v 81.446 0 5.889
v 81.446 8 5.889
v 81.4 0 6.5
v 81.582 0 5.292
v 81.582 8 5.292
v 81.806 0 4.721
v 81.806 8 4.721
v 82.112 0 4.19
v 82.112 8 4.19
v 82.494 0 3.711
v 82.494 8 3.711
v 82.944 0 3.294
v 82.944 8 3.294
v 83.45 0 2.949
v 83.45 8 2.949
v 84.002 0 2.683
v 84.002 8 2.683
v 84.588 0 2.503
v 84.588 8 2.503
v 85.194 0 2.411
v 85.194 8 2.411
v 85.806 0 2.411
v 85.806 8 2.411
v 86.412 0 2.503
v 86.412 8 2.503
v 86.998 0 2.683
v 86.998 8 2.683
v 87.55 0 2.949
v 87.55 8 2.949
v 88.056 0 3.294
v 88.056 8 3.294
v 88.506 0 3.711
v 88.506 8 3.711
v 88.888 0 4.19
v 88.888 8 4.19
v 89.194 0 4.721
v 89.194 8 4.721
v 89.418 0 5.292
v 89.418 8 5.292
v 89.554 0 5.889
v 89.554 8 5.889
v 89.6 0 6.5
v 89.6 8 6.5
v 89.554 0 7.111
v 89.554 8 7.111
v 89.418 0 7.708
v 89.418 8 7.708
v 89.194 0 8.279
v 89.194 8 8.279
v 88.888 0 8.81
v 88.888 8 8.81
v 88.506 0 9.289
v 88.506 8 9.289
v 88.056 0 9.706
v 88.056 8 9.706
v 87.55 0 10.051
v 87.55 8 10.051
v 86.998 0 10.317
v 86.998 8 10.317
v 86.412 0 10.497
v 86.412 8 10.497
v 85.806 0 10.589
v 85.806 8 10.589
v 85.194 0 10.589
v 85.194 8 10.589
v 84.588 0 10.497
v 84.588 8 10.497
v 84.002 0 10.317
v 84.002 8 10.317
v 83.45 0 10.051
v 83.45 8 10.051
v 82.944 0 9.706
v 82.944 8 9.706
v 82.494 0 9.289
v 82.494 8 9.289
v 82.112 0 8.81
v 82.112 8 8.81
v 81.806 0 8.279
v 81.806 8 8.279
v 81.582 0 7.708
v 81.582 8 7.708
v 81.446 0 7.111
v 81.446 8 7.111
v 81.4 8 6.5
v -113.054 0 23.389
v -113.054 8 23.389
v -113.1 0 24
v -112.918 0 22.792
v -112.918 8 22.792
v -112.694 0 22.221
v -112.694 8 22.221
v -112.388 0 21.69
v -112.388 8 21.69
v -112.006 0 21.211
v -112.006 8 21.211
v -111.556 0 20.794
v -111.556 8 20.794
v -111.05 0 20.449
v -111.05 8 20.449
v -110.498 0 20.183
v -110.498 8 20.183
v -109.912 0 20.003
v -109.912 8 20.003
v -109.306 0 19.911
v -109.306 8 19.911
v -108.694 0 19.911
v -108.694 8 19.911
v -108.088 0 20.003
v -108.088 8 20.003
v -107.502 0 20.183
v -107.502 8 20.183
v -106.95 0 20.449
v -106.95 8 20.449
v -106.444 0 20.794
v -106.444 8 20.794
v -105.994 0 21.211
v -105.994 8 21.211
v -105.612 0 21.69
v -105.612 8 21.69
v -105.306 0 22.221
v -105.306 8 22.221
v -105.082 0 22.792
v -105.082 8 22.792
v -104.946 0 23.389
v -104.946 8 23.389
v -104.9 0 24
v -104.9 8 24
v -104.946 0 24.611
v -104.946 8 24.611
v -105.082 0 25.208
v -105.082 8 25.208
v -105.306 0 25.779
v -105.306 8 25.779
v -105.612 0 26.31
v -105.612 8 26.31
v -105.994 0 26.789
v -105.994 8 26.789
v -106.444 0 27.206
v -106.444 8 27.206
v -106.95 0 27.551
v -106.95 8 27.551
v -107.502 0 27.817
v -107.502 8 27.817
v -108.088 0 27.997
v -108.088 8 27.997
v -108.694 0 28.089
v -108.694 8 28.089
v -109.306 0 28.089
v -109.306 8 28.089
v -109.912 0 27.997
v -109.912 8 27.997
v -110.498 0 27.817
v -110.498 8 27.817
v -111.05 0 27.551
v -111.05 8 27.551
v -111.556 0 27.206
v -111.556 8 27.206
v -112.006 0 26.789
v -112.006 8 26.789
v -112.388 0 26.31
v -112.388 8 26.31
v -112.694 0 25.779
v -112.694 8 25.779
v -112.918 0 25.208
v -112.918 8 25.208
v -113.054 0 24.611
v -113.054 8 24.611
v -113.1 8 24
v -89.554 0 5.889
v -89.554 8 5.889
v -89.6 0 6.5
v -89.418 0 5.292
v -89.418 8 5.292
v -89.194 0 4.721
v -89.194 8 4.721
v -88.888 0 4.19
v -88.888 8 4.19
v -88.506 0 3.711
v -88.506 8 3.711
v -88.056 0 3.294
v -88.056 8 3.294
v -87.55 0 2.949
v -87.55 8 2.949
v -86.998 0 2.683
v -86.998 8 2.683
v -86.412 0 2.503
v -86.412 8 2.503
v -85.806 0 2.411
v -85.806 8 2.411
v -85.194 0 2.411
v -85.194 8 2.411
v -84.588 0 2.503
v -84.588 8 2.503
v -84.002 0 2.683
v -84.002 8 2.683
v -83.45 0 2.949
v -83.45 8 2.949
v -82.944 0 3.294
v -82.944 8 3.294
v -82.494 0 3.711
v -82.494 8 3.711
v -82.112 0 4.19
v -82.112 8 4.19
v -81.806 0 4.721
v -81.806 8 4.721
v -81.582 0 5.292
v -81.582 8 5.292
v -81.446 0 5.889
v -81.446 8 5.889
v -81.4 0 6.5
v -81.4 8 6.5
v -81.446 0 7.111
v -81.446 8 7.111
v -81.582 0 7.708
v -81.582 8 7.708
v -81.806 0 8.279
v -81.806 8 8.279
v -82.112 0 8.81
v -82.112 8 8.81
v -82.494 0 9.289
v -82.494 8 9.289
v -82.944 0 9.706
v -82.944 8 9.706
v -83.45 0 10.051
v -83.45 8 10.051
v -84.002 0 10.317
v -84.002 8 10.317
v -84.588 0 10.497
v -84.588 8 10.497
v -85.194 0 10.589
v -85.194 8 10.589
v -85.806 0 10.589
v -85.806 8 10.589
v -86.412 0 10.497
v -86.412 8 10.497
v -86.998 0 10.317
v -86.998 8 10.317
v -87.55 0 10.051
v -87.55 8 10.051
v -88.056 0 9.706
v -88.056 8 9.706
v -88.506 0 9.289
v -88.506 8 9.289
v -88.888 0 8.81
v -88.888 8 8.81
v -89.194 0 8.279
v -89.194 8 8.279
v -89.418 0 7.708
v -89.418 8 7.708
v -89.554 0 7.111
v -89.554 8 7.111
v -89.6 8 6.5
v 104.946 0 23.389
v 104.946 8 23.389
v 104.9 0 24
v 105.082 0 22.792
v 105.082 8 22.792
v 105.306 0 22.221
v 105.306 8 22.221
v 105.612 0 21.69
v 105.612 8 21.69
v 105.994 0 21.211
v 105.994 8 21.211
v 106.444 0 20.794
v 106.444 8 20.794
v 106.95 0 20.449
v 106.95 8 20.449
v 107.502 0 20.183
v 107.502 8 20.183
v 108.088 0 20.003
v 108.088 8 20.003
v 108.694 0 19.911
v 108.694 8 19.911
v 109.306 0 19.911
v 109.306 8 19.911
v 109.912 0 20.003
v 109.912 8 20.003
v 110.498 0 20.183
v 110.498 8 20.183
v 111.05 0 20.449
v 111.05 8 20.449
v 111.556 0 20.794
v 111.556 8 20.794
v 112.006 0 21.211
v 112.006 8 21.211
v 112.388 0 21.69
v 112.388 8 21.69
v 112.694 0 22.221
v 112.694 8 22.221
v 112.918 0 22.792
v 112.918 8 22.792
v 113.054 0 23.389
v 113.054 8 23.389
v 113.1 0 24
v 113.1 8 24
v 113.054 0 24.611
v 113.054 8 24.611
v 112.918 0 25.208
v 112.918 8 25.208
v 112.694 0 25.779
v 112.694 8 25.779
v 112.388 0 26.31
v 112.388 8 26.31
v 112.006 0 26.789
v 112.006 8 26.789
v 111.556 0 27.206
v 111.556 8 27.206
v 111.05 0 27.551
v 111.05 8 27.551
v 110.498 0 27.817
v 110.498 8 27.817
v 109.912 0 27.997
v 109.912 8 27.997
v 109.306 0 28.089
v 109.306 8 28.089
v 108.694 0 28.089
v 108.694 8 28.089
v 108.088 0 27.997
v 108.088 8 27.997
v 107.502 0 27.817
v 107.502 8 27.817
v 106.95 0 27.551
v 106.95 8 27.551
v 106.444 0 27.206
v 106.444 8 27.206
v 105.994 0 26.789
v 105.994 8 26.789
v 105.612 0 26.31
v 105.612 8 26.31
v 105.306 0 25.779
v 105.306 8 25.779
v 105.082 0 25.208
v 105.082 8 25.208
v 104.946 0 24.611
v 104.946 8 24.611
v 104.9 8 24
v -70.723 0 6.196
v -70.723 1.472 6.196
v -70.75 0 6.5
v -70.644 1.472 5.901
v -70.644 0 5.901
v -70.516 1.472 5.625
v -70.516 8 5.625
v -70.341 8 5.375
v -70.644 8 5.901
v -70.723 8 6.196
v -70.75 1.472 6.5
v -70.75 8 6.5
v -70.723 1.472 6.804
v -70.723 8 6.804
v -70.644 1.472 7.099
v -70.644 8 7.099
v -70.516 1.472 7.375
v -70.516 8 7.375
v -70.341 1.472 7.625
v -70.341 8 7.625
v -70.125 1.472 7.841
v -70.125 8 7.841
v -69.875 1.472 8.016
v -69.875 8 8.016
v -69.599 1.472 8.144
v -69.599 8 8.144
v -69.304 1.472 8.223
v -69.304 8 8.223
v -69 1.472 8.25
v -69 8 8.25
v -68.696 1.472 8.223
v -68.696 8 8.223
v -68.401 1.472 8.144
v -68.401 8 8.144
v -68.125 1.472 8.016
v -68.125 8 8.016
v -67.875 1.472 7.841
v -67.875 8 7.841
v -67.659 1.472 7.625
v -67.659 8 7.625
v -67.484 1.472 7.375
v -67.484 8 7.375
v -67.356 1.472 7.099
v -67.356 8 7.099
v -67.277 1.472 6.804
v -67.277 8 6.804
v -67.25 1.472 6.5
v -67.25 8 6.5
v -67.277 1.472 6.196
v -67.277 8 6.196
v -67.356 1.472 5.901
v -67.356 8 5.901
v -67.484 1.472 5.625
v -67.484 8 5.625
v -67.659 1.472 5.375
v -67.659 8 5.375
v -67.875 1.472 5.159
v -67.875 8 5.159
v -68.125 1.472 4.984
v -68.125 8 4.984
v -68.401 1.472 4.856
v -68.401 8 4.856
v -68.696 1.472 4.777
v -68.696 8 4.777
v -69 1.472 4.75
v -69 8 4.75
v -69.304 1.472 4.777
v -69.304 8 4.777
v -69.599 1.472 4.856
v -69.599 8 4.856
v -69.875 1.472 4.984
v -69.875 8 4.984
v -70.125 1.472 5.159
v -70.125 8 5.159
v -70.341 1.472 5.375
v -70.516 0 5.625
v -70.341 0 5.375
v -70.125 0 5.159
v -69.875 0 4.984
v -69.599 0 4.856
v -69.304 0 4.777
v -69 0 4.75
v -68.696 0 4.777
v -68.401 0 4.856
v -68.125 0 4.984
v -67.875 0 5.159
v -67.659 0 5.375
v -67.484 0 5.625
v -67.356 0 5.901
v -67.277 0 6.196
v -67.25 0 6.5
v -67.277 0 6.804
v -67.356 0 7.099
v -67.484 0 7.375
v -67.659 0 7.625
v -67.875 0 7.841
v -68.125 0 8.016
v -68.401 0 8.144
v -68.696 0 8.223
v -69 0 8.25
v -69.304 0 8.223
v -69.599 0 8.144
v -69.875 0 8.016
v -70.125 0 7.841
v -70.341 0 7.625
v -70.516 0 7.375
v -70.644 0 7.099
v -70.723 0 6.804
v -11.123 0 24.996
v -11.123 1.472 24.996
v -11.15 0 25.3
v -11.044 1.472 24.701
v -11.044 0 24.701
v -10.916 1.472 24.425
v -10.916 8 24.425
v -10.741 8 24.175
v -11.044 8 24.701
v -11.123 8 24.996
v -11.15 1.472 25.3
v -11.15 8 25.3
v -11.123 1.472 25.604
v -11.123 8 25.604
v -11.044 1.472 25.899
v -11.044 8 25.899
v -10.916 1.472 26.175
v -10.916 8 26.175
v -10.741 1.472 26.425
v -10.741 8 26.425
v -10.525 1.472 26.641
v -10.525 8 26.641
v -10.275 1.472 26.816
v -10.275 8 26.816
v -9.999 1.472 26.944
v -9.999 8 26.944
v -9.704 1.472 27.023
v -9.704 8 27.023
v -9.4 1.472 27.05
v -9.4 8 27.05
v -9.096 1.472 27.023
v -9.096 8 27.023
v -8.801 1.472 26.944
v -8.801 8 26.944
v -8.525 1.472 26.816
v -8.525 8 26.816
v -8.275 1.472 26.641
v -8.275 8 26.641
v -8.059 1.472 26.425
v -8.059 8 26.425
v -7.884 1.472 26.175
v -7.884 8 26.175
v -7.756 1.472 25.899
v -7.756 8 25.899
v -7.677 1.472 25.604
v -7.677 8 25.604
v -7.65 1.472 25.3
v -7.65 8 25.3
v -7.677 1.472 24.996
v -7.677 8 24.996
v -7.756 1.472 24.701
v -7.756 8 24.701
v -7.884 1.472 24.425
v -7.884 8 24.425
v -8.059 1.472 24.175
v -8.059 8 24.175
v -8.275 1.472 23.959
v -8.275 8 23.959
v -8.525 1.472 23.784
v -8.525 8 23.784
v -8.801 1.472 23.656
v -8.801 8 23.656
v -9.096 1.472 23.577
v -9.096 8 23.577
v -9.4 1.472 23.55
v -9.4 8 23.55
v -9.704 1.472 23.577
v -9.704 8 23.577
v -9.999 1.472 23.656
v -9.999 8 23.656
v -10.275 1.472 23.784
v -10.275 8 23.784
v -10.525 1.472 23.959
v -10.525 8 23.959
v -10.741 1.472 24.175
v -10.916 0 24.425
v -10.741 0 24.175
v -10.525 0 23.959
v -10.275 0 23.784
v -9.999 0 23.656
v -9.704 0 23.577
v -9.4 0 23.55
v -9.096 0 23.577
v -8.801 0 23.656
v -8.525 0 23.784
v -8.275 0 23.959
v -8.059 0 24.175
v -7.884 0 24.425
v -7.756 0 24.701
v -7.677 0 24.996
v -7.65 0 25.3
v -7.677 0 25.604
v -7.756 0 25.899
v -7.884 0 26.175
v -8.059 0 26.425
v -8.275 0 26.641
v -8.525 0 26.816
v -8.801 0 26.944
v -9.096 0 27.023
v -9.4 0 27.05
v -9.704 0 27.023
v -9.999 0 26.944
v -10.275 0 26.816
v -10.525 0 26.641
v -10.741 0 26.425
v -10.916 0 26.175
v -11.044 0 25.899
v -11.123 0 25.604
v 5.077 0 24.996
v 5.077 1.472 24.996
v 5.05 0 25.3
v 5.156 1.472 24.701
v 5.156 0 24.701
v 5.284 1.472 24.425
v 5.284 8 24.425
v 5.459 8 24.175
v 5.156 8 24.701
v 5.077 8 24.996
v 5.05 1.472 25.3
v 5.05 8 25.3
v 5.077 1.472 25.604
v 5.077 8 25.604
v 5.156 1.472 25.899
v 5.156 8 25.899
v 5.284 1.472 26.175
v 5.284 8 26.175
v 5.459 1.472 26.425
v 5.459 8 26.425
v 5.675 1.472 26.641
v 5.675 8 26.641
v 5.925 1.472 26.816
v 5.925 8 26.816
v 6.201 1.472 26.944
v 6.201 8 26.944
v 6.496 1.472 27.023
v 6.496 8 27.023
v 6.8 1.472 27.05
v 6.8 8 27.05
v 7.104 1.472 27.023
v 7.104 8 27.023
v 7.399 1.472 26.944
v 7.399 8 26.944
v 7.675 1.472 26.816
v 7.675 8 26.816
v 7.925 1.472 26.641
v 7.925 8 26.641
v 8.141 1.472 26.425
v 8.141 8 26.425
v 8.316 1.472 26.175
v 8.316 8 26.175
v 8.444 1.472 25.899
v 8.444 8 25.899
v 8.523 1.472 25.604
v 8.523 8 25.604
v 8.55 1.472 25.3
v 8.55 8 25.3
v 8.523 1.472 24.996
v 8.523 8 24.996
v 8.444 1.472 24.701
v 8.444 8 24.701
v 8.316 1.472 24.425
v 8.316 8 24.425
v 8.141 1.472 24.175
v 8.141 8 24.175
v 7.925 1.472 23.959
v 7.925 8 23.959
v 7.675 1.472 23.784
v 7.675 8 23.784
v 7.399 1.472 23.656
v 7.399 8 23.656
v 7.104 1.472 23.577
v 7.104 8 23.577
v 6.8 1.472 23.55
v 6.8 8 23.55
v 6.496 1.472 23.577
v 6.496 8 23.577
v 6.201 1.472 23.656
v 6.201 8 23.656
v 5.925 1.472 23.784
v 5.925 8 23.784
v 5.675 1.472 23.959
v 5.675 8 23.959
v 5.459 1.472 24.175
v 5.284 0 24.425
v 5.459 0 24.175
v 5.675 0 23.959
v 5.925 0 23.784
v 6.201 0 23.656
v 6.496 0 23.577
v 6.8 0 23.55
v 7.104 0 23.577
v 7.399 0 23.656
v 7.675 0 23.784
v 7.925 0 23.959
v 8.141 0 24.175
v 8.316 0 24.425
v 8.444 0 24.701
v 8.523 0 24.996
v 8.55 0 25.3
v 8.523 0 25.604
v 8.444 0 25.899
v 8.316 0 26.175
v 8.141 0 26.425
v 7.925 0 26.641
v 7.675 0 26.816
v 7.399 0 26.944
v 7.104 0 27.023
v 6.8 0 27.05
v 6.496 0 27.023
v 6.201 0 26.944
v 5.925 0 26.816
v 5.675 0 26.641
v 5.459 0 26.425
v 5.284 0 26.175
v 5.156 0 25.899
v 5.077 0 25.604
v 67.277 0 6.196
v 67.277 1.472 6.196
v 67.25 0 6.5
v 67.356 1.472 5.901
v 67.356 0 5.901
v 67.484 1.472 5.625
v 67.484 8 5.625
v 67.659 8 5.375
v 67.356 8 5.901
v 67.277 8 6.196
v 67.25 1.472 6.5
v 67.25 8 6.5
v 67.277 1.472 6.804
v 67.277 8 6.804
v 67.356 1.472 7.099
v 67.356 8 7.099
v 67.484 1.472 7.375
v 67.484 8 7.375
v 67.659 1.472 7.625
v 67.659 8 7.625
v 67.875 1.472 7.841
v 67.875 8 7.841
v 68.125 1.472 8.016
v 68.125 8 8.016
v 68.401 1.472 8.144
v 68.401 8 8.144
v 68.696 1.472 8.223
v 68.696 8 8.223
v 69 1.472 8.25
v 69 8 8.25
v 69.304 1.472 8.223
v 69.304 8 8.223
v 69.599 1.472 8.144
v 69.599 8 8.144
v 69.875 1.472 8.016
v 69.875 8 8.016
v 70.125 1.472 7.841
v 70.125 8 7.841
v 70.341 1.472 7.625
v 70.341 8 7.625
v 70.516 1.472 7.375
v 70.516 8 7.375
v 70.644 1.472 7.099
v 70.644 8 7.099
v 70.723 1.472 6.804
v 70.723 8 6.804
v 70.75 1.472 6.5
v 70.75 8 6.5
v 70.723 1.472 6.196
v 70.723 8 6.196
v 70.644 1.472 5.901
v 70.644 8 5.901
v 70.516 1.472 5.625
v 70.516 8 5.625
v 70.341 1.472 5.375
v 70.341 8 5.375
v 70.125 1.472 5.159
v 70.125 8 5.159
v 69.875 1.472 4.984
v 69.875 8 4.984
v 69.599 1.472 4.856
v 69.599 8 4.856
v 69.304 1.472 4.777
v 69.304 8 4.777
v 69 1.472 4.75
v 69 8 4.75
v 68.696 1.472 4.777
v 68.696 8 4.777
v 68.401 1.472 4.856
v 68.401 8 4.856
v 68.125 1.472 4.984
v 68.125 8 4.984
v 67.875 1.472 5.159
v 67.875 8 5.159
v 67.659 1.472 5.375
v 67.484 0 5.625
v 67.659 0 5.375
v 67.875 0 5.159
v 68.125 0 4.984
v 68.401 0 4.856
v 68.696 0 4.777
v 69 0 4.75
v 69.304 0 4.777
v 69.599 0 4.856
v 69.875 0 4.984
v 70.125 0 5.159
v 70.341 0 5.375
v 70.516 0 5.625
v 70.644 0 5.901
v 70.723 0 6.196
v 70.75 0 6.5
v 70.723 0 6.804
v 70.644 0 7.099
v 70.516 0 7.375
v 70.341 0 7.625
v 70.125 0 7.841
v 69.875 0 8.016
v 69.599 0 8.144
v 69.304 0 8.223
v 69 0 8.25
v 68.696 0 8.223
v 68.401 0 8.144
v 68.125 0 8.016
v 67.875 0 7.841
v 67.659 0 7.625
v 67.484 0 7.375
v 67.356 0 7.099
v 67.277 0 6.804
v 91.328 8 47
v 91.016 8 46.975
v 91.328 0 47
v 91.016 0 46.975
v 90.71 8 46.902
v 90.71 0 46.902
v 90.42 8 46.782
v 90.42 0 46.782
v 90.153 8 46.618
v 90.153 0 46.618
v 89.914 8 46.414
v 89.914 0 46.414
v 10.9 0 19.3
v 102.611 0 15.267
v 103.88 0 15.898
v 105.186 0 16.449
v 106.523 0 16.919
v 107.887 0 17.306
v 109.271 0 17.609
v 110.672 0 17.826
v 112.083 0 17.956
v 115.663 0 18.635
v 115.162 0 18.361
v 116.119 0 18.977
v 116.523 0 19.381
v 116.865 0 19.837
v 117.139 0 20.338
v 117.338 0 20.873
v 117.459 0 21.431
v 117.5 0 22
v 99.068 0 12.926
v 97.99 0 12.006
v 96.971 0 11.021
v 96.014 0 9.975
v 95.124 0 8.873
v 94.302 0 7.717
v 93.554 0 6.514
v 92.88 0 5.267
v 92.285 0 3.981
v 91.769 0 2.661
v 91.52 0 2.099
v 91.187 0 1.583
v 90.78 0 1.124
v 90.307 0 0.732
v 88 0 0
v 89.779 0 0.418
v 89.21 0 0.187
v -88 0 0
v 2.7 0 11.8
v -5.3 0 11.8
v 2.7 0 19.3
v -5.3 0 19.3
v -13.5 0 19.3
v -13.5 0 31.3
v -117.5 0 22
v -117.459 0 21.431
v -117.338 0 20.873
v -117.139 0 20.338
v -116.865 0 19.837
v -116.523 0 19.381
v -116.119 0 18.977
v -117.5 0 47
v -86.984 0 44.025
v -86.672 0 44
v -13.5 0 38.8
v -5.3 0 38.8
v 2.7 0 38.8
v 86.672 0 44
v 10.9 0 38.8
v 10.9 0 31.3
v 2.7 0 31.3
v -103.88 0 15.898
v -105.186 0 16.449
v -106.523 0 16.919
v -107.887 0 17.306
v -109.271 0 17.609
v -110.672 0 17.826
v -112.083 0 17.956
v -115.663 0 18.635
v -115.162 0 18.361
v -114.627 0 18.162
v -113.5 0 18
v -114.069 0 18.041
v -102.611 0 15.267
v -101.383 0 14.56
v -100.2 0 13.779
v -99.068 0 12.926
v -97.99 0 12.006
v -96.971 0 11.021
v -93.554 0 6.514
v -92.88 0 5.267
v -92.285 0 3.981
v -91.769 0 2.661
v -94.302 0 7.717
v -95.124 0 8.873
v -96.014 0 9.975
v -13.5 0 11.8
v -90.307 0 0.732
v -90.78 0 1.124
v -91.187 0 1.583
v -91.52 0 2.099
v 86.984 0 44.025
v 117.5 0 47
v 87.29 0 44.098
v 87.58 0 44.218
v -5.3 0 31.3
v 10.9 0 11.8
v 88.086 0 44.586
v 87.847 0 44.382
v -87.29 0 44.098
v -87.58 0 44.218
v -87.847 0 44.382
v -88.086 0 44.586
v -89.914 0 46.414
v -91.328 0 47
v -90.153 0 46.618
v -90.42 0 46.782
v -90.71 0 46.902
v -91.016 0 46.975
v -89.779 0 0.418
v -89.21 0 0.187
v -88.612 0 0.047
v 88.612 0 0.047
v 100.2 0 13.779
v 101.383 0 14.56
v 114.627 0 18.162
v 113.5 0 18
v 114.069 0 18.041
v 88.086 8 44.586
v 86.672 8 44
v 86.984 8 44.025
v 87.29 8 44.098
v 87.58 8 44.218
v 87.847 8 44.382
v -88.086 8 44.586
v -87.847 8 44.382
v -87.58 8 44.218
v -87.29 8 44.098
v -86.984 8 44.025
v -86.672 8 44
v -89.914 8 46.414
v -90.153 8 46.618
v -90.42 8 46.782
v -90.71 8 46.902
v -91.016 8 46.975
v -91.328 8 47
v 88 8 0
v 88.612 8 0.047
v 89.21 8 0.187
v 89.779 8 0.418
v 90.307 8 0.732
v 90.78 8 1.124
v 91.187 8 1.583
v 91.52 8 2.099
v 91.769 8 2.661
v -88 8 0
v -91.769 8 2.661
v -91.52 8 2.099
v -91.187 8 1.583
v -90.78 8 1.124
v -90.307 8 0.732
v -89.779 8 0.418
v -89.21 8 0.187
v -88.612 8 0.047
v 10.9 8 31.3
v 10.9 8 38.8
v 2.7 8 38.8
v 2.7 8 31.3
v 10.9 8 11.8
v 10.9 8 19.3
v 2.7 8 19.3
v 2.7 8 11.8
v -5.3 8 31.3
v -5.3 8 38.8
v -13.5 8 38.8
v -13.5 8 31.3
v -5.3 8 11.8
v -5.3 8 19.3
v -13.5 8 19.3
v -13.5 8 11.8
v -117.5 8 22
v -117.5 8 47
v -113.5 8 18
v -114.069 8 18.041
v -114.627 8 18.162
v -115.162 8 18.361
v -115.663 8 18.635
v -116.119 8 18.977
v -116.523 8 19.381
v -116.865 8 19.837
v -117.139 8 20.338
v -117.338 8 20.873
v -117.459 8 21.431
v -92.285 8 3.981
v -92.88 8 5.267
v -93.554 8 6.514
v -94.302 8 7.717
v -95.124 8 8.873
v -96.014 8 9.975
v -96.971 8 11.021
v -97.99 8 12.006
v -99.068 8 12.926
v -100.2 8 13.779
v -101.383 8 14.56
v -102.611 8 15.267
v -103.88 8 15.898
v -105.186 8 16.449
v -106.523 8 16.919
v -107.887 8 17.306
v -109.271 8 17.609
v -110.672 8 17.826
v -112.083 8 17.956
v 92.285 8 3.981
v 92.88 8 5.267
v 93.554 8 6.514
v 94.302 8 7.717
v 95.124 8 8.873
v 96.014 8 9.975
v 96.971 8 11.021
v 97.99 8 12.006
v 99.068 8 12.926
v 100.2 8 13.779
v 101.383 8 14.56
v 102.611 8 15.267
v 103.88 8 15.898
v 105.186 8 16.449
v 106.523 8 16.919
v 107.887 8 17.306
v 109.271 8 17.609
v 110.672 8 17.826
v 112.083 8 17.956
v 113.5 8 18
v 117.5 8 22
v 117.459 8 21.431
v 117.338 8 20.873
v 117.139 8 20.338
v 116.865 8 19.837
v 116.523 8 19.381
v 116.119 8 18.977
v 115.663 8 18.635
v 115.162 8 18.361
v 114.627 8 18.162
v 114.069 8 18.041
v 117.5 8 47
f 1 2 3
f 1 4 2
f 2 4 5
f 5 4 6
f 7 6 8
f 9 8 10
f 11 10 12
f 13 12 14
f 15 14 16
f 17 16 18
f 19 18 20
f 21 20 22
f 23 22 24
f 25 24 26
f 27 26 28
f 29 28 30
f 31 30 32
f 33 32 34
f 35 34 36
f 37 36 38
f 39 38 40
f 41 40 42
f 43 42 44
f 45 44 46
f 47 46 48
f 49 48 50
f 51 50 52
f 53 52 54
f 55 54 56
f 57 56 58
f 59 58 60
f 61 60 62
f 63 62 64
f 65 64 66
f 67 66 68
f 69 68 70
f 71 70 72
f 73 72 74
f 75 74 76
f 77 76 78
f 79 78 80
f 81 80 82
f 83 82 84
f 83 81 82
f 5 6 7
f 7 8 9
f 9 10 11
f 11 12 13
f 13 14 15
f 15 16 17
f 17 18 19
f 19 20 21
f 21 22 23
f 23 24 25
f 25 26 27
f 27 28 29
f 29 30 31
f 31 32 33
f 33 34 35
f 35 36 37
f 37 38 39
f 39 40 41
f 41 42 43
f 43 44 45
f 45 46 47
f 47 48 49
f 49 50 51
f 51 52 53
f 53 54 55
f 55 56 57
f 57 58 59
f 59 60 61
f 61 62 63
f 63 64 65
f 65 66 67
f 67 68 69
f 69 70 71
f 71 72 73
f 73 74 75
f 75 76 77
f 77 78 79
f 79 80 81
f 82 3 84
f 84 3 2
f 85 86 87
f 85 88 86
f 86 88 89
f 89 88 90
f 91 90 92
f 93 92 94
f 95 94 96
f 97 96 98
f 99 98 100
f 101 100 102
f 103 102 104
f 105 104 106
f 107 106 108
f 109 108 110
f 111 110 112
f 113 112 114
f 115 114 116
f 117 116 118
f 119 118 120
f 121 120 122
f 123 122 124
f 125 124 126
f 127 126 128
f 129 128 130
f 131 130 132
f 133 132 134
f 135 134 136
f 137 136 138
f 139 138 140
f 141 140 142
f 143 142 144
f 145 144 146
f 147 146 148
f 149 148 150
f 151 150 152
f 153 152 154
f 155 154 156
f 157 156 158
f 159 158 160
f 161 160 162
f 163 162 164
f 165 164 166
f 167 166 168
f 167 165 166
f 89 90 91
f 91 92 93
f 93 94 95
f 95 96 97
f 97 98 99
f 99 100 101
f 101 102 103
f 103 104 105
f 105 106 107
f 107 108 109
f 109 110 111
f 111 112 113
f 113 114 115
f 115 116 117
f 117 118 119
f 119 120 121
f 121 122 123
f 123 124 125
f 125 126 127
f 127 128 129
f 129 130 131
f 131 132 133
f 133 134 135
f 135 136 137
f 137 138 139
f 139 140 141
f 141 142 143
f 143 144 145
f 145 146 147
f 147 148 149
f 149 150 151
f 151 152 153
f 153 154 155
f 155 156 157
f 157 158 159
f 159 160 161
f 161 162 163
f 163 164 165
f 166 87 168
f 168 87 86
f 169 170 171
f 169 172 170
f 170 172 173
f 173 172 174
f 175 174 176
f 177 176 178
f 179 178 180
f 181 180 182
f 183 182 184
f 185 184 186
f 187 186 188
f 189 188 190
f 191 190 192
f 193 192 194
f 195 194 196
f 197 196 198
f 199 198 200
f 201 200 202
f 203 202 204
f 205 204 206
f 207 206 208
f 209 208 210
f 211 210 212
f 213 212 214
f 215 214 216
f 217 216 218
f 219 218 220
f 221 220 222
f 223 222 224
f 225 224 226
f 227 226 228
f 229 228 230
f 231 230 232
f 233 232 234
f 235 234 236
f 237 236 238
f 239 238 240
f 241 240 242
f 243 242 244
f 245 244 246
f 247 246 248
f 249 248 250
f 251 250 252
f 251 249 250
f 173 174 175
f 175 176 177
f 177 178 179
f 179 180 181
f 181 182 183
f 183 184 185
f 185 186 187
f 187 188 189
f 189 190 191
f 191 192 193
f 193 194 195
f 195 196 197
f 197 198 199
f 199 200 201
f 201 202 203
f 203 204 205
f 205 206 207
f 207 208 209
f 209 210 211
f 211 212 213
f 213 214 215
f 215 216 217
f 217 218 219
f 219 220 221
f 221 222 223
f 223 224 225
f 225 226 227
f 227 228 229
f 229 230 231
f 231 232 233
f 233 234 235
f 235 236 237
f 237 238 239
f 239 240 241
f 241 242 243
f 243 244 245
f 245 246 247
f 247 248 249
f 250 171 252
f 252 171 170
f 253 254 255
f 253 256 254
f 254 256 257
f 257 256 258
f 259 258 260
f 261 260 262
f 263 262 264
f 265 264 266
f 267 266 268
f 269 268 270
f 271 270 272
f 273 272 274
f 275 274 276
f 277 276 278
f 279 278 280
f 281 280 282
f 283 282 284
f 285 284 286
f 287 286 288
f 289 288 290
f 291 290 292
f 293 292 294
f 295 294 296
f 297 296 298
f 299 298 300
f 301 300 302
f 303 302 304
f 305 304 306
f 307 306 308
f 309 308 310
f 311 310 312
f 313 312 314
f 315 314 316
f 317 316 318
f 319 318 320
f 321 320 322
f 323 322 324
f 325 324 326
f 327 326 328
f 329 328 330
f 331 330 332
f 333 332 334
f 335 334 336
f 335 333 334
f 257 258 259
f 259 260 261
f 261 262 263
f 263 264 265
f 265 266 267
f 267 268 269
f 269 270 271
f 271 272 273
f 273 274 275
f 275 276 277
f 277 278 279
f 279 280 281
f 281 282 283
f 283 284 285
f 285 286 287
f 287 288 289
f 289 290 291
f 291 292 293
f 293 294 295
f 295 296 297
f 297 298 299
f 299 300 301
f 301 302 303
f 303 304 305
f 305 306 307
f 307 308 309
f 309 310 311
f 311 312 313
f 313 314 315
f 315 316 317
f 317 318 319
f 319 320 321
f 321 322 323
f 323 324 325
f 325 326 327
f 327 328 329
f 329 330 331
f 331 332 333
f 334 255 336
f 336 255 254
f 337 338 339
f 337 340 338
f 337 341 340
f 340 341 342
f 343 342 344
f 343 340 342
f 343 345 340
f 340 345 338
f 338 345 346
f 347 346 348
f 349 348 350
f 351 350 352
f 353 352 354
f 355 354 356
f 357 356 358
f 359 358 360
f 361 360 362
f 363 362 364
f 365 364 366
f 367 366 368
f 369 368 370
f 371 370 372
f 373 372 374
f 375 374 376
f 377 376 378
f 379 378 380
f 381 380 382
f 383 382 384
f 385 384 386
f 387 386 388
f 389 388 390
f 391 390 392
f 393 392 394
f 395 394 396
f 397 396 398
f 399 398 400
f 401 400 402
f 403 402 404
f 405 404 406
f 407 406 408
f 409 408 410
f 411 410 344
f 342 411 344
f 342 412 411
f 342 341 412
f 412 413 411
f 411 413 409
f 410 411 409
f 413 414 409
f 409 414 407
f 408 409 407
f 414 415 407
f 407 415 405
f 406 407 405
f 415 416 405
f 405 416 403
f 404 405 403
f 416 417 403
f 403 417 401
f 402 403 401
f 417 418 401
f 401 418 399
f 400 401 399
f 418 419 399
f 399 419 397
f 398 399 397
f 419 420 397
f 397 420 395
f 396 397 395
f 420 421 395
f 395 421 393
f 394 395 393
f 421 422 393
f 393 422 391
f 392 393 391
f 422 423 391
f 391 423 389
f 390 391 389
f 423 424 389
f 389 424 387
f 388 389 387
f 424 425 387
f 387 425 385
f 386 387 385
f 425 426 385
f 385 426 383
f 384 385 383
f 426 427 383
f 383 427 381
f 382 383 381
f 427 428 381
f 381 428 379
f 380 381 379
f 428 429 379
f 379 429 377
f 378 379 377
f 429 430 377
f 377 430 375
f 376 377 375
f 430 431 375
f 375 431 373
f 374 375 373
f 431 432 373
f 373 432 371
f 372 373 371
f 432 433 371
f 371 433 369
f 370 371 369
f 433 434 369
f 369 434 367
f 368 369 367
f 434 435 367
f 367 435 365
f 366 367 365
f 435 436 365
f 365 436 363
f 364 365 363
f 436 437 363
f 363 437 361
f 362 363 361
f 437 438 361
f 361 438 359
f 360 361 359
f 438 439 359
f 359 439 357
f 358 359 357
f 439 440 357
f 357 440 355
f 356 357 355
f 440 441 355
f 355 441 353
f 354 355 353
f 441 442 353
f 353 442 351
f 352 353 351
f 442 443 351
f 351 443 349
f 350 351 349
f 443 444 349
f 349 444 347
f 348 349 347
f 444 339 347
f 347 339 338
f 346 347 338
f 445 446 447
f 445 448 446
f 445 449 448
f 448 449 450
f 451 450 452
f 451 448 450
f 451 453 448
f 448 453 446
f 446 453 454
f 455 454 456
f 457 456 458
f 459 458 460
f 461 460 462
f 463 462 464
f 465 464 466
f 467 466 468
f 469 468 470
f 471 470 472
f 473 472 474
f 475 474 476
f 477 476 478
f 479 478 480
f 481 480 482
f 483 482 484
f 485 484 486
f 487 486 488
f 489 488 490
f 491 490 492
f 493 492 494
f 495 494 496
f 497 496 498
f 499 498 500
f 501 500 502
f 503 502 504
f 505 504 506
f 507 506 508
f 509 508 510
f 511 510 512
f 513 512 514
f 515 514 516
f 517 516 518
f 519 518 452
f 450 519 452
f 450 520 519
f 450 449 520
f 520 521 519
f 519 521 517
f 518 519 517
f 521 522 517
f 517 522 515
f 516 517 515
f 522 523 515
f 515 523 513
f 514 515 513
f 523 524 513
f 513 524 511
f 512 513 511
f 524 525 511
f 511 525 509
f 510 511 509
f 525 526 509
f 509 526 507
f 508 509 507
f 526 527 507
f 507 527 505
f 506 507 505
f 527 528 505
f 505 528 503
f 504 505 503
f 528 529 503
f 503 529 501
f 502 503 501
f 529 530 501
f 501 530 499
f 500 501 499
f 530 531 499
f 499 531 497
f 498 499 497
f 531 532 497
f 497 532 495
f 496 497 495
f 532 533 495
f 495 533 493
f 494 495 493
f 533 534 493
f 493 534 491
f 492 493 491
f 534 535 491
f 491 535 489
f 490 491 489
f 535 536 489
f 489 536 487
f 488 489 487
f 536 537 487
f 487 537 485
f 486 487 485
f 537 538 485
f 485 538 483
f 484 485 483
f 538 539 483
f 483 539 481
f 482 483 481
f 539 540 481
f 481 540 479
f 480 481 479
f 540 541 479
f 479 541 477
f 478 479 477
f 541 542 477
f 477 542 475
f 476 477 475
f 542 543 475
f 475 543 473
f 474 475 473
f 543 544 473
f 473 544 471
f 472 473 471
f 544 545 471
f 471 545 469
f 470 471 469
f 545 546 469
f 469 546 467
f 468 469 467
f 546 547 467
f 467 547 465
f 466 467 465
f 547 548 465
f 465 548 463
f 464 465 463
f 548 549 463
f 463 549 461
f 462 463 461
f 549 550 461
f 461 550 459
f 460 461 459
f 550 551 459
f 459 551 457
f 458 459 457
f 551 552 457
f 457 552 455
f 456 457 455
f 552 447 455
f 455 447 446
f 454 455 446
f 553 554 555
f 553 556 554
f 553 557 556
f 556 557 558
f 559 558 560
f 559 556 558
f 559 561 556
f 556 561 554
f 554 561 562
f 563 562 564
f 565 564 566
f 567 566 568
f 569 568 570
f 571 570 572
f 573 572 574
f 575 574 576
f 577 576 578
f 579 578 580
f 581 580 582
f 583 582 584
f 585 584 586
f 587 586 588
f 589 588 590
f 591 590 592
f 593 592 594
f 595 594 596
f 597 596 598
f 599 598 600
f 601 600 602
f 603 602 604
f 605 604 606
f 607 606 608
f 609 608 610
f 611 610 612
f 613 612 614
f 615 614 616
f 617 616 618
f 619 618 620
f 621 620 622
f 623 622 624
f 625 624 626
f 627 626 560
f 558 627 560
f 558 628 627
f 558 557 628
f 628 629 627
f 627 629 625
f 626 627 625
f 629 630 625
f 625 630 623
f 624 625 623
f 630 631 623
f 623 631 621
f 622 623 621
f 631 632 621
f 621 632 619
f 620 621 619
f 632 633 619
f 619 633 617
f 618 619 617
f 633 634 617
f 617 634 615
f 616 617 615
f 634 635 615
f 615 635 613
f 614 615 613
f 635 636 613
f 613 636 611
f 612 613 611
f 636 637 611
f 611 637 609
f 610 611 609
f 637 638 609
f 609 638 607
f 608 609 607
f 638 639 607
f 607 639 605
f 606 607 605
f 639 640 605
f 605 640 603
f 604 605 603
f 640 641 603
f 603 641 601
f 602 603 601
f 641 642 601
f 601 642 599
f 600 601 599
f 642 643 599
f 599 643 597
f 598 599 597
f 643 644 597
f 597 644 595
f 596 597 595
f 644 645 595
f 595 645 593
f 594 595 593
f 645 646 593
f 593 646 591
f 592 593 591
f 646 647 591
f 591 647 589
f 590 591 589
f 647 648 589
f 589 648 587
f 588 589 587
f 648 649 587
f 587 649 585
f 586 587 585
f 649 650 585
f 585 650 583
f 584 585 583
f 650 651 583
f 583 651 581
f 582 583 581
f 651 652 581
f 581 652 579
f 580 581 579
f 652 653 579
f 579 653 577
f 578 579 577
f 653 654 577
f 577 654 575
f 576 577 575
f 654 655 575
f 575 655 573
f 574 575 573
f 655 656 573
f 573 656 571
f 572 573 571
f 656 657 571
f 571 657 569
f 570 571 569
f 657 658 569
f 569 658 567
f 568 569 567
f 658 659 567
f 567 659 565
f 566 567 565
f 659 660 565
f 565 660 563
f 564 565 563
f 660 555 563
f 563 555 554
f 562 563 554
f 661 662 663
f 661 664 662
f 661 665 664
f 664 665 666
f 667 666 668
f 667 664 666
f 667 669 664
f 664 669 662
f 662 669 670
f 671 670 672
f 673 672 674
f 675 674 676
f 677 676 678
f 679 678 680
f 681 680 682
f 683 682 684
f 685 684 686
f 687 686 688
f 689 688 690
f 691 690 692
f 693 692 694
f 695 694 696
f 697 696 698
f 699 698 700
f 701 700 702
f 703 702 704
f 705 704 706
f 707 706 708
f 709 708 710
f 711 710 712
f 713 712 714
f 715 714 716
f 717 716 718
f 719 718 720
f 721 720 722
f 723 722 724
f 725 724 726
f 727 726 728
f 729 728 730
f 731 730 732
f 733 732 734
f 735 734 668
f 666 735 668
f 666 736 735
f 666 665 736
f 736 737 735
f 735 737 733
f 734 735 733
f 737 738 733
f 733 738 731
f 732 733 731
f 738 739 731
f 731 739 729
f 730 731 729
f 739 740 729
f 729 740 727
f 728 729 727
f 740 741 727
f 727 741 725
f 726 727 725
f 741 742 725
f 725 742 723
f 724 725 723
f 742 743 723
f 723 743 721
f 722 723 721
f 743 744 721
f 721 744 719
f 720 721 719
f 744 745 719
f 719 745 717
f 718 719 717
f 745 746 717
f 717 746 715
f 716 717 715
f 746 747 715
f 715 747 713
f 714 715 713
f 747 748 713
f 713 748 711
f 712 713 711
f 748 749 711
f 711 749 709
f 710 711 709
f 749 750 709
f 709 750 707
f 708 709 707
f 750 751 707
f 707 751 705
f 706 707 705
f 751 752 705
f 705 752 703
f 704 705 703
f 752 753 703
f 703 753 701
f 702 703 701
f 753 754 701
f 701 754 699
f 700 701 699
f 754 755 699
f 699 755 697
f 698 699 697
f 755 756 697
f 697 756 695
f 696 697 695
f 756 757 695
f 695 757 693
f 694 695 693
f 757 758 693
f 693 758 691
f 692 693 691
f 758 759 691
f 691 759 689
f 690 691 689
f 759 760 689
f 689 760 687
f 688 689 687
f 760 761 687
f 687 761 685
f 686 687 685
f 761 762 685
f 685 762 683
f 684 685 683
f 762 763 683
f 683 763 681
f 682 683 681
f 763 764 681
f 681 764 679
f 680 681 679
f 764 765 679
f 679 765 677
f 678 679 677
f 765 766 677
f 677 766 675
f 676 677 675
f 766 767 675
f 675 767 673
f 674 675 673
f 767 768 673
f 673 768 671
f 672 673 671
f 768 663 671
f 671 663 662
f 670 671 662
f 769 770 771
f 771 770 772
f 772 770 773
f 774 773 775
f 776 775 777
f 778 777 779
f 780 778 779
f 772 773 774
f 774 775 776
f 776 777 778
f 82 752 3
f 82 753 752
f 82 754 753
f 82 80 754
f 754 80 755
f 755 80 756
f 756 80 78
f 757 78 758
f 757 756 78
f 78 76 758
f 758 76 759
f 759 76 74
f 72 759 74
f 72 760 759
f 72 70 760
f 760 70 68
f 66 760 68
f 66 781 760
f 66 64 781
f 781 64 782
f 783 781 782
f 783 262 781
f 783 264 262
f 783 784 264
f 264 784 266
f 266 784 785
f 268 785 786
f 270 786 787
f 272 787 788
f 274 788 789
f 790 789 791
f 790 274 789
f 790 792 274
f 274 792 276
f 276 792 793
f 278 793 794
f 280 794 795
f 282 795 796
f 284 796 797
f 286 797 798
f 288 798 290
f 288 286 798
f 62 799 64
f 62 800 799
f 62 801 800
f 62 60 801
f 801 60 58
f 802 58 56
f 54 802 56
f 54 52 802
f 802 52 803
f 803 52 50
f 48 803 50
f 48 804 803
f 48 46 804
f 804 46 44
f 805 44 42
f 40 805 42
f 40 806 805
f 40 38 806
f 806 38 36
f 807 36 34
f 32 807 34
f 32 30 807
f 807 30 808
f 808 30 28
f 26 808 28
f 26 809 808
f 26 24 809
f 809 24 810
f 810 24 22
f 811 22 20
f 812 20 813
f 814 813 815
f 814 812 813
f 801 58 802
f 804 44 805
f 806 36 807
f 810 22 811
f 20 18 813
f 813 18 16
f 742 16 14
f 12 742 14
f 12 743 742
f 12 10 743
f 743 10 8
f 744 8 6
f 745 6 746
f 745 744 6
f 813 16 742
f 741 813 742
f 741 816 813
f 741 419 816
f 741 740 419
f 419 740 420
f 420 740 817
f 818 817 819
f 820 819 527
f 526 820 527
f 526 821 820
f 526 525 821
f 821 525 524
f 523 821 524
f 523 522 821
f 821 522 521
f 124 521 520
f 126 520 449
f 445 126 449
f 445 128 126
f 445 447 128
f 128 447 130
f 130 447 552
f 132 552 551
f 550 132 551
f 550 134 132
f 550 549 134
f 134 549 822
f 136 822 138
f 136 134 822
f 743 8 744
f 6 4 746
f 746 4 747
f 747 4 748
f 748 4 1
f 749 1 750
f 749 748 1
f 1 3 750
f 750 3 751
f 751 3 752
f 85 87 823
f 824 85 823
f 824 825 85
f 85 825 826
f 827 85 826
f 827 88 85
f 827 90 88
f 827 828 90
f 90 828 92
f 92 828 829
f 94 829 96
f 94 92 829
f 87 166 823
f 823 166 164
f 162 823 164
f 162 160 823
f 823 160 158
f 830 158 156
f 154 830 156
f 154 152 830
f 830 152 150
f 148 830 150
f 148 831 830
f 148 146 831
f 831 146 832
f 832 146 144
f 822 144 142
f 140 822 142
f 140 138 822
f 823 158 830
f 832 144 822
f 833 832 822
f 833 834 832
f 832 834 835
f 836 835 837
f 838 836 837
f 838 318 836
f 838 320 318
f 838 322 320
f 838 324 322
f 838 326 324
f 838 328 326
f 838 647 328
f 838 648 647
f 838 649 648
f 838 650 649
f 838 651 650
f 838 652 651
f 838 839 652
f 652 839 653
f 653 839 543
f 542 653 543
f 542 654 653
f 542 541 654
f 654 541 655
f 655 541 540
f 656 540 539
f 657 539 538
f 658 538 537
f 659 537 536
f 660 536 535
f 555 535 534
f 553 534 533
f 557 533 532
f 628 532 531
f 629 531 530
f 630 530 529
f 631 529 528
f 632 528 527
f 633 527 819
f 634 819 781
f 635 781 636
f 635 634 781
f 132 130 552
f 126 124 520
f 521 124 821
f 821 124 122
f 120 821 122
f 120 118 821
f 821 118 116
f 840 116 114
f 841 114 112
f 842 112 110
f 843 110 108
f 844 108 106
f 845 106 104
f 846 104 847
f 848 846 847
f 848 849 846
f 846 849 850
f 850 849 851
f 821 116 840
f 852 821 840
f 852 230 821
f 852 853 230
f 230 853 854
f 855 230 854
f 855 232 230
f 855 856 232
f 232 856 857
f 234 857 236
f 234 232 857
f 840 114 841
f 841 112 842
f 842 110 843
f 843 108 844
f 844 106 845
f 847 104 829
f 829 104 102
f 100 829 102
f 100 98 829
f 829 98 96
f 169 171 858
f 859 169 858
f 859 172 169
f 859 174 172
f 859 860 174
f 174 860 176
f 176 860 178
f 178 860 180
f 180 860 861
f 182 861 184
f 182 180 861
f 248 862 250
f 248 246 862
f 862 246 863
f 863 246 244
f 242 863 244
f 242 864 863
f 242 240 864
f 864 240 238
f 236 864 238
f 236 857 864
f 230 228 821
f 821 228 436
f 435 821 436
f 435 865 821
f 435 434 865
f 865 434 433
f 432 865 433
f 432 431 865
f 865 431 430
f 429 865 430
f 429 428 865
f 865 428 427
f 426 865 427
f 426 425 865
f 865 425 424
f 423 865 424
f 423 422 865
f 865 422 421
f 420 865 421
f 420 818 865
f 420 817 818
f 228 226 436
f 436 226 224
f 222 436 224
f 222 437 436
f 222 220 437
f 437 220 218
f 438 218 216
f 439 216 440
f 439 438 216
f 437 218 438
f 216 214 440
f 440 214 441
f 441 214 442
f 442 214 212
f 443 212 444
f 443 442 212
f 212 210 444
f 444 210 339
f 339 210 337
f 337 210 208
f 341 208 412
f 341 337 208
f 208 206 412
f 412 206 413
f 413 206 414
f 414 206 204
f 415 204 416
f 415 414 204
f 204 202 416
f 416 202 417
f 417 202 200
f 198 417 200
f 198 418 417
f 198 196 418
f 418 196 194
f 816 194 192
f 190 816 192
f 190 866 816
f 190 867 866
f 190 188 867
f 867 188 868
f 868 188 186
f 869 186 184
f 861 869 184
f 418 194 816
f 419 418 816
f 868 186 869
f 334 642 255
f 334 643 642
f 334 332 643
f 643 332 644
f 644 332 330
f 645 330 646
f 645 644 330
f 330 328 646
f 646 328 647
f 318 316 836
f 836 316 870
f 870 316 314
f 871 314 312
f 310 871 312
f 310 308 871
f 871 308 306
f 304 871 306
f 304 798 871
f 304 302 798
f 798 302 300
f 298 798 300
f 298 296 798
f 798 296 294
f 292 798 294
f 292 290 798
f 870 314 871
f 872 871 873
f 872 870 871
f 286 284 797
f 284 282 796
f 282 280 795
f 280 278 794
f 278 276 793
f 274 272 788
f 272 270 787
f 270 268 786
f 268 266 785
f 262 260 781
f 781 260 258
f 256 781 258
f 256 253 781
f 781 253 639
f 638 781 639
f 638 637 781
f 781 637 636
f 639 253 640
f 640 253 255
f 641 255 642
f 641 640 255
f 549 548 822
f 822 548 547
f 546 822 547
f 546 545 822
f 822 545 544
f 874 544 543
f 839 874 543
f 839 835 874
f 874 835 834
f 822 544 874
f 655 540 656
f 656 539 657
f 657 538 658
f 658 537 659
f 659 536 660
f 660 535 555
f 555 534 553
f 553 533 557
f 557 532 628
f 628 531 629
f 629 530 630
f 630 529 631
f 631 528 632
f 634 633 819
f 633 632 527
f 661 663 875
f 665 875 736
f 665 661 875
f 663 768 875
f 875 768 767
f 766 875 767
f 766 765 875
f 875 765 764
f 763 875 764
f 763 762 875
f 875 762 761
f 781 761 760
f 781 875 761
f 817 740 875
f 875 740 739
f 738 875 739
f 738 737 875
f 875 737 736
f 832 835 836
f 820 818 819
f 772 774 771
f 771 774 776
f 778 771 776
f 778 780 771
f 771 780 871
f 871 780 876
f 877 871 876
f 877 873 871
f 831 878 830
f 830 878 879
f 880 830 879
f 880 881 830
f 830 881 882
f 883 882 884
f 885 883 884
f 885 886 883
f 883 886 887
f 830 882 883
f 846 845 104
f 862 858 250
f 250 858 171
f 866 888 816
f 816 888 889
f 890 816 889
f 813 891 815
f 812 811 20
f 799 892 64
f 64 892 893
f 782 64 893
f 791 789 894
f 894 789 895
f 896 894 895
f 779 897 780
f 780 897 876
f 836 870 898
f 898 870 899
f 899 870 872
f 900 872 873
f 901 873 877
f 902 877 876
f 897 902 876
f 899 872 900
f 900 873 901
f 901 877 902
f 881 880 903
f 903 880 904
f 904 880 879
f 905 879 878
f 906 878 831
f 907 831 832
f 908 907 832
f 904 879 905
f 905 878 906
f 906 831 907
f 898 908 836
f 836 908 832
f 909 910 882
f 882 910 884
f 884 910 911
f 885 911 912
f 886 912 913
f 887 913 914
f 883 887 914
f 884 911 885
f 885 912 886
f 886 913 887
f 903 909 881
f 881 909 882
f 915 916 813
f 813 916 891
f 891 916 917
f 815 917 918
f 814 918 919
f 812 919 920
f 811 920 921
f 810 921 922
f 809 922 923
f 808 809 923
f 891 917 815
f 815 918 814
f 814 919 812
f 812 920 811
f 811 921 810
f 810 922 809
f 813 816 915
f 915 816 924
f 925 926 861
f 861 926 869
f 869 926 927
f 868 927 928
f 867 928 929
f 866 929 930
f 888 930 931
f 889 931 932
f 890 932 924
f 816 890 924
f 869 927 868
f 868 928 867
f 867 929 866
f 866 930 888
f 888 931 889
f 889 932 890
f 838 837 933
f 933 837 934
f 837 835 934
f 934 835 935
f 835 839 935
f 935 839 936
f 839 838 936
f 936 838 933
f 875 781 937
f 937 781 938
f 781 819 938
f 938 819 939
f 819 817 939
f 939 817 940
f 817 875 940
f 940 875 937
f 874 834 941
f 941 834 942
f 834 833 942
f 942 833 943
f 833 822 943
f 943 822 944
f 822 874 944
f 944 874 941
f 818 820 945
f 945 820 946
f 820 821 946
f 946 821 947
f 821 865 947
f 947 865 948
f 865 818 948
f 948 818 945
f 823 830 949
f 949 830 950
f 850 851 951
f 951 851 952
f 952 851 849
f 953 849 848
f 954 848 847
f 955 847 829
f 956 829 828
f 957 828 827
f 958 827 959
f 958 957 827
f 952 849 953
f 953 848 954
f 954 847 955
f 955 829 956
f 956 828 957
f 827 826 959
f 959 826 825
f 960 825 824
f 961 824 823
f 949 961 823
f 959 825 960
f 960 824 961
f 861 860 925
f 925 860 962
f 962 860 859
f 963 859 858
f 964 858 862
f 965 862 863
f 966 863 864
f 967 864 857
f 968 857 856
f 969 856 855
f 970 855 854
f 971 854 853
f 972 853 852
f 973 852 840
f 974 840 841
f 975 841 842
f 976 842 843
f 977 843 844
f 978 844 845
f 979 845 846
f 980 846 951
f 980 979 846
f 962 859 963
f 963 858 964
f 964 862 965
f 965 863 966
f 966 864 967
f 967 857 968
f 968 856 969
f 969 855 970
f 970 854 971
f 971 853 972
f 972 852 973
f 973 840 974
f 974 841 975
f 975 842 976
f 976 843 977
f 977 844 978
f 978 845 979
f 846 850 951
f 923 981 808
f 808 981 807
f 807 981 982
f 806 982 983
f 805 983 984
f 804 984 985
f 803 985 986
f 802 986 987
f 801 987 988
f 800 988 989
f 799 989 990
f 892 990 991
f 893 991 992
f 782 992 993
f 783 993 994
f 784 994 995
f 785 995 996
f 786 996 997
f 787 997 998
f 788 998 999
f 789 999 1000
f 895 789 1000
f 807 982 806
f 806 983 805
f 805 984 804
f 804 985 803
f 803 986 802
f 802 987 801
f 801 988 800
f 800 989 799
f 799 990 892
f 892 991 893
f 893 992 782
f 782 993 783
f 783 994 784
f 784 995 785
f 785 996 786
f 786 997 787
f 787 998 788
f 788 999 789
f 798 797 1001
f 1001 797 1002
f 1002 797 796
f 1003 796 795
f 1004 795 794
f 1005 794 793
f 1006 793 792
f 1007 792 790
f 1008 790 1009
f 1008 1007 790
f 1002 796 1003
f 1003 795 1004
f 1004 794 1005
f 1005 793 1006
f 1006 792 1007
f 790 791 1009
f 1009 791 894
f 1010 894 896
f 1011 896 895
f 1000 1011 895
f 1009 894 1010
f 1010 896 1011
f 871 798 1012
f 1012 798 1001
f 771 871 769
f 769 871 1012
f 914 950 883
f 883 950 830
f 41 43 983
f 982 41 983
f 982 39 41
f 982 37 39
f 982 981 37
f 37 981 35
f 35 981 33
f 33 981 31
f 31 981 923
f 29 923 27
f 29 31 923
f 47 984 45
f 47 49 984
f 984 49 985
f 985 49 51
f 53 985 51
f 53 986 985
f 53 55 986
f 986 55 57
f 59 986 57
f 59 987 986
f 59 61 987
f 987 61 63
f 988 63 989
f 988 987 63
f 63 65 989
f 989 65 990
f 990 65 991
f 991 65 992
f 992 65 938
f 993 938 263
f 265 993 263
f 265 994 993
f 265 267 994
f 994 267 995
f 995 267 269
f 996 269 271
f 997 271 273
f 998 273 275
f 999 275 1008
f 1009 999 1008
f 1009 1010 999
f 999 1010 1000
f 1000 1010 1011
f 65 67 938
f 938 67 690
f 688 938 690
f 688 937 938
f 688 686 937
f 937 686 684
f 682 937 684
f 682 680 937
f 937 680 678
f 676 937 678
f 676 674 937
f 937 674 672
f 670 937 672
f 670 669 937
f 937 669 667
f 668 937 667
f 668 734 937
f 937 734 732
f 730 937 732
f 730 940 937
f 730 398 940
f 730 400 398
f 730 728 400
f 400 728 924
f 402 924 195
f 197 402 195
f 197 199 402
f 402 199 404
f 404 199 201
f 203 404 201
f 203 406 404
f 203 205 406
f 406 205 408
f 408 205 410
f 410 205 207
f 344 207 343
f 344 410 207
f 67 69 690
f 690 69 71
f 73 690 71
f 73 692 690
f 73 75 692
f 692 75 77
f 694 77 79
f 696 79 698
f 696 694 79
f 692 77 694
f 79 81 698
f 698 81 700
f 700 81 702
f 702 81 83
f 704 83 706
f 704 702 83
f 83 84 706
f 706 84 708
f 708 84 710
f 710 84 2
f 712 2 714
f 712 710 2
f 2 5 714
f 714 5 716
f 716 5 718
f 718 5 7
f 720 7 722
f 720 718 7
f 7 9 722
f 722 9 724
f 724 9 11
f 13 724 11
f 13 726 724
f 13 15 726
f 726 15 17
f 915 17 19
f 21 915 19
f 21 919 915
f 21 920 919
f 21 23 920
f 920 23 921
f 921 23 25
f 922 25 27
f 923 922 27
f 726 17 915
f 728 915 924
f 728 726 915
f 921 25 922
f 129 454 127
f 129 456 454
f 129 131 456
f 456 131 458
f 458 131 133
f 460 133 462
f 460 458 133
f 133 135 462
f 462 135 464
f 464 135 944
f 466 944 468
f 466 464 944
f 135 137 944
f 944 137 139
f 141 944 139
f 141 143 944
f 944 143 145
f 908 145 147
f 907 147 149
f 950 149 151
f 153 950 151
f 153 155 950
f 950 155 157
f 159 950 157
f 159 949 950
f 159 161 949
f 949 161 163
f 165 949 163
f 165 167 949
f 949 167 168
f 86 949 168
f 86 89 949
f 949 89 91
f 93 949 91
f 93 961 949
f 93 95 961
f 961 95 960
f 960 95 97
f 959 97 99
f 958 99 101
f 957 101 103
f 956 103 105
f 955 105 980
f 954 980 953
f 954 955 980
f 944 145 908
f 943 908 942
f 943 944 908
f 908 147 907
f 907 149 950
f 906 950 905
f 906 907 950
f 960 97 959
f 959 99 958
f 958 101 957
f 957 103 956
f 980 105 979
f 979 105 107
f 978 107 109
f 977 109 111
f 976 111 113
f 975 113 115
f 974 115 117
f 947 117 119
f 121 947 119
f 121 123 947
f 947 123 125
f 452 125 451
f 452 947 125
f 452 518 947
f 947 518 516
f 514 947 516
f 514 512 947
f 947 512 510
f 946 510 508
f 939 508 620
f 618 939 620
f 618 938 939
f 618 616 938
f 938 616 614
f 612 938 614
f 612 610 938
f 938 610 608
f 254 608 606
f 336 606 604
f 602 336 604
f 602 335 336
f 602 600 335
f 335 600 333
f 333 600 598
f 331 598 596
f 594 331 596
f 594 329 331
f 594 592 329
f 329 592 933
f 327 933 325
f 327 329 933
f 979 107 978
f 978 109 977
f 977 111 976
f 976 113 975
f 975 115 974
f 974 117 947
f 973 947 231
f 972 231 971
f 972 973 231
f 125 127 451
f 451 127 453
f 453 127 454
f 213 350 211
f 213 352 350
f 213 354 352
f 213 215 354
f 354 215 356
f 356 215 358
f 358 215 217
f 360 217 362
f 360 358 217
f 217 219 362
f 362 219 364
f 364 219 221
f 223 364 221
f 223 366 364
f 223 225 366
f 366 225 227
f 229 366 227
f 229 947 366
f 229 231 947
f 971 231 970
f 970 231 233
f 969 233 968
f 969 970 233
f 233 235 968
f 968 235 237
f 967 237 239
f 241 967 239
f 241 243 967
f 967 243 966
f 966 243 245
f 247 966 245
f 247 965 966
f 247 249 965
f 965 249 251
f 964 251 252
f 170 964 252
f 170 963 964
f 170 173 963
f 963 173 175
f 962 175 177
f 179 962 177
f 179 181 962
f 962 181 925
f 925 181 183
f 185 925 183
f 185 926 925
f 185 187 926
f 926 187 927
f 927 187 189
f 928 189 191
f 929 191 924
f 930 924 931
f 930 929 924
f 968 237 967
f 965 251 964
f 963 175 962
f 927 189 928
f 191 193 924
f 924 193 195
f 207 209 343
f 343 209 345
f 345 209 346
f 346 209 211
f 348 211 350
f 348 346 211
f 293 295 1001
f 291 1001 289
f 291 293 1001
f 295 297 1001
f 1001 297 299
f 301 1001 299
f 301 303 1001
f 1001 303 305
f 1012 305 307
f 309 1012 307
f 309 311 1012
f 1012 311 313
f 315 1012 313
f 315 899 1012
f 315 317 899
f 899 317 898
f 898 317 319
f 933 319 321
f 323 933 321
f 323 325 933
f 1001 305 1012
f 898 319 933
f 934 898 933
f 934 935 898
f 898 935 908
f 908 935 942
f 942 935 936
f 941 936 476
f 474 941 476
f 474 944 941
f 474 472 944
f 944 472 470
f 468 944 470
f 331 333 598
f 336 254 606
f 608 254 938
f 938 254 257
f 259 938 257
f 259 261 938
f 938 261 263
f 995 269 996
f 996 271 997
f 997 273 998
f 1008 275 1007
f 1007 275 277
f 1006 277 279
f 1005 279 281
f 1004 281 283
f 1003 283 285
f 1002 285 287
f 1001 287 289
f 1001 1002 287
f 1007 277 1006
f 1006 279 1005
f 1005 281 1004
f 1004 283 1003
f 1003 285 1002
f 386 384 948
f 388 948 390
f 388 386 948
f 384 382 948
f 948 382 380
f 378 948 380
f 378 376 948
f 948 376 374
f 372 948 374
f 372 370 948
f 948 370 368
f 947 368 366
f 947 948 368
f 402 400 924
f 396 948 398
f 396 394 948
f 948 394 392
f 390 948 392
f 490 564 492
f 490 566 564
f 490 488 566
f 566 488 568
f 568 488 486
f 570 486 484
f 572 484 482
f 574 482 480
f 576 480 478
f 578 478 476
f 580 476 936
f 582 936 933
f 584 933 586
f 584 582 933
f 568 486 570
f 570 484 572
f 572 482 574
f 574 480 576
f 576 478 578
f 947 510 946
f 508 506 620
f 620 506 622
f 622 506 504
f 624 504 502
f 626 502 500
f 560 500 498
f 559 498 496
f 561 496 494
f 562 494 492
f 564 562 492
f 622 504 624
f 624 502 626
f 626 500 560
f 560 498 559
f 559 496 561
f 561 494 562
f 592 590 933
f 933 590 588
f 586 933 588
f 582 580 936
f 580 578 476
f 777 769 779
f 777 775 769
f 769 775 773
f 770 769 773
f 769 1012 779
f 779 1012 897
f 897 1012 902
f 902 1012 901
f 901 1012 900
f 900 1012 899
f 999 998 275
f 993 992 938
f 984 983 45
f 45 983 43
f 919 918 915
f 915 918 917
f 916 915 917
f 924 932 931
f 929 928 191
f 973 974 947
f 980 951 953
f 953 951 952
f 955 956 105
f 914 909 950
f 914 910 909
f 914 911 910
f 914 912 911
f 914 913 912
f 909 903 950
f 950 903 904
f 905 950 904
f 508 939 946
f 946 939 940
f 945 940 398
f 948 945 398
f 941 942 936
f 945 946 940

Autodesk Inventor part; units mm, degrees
ref_plane "YZ Plane" through (0, 0, 0) normal (1, 0, 0) x (0, 1, 0)
ref_plane "XY Plane" through (0, 0, 0) normal (0, 0, 1) x (1, 0, 0)
sketch "Sketch1" plane through (0, 0, 0) normal (0, 1, 0) x (-1, 0, 0)
  line L0 (-117.5, 47) -> (-117.5, 0)
  line L1 (-117.5, 0) -> (117.5, 0)
  line L2 (117.5, 0) -> (117.5, 47)
  line L3 (90.5, 47) -> (87.5, 44)
  line L4 (87.5, 44) -> (-87.5, 44)
  line L5 (-87.5, 44) -> (-90.5, 47)
  line L6 (117.5, 47) -> (90.5, 47)
  line L7 (-90.5, 47) -> (-117.5, 47)
  arc A0 (113.5, 18) -> (117.5, 22) centre (113.5, 22) ccw
  arc A1 (113.5, 18) -> (91, 0) centre (113.5, -5.0625) ccw
  line L8 (113.5, 22) -> (113.5, 18) construction
  arc A2 (-117.5, 22) -> (-113.5, 18) centre (-113.5, 22) ccw
  arc A3 (-91, 0) -> (-113.5, 18) centre (-113.5, -5.0625) ccw
  line L9 (-113.5, 22) -> (-113.5, 18) construction
  line L10 (0, 44) -> (0, 0) construction
  line L11 (13.5, 11.8) -> (5.3, 11.8)
  line L12 (5.3, 11.8) -> (5.3, 19.3)
  line L13 (5.3, 19.3) -> (13.5, 19.3)
  line L14 (13.5, 19.3) -> (13.5, 11.8)
  line L15 (13.5, 31.3) -> (5.3, 31.3)
  line L16 (5.3, 31.3) -> (5.3, 38.8)
  line L17 (5.3, 38.8) -> (13.5, 38.8)
  line L18 (13.5, 38.8) -> (13.5, 31.3)
  line L19 (-2.7, 11.8) -> (-10.9, 11.8)
  line L20 (-10.9, 11.8) -> (-10.9, 19.3)
  line L21 (-10.9, 19.3) -> (-2.7, 19.3)
  line L22 (-2.7, 19.3) -> (-2.7, 11.8)
  line L23 (-2.7, 31.3) -> (-10.9, 31.3)
  line L24 (-10.9, 31.3) -> (-10.9, 38.8)
  line L25 (-10.9, 38.8) -> (-2.7, 38.8)
  line L26 (-2.7, 38.8) -> (-2.7, 31.3)
  dimension "d1" = 235
  dimension "d2" = 3
  dimension "d3" = 45
  dimension "d4" = 27
  dimension "d5" = 47
  dimension "d6" = 4
  dimension "d7" = 29
  dimension "d8" = 23.0625
  dimension "d9" = 182
  dimension "d10" = 8.2
  dimension "d11" = 7.5
  dimension "d12" = 12
  dimension "d14" = 8
  dimension "d15" = 11.8
  dimension "d16" = 104
  dimension "d17" = 106.6
extrude "Extrusion1" add sketch "Sketch1" along normal blind 8 contours L7 L5 L4 L3 L6 L2 A0 A1 L1 A3 A2 L0
fillet "Fillet1" radius 4 2 edges at (-91, 4, 0) (91, 4, 0)
fillet "Fillet2" radius 2 4 edges at (-90.5, 4, 47) (-87.5, 4, 44) (87.5, 4, 44) (90.5, 4, 47)
sketch "Sketch2" plane through (0, 8, 0) normal (0, 1, 0) x (1, 0, 0)
  arc A0 (89.9142, -46.4142) -> (91.3284, -47) centre (91.3284, -45) ccw construction
  line L0 (91.3284, -47) -> (117.5, -47) construction
  line L1 (117.5, -47) -> (117.5, -22) construction
  arc A1 (117.5, -22) -> (113.5, -18) centre (113.5, -22) ccw construction
  arc A2 (91.7691, -2.6605) -> (113.5, -18) centre (113.5, 5.0625) ccw construction
  arc A3 (91.7691, -2.6605) -> (88, 0) centre (88, -4) ccw construction
  line L2 (88, 0) -> (-88, 0) construction
  arc A4 (-88, 0) -> (-91.7691, -2.6605) centre (-88, -4) ccw construction
  arc A5 (-113.5, -18) -> (-91.7691, -2.6605) centre (-113.5, 5.0625) ccw construction
  arc A6 (-113.5, -18) -> (-117.5, -22) centre (-113.5, -22) ccw construction
  line L3 (-117.5, -22) -> (-117.5, -47) construction
  line L4 (-117.5, -47) -> (-91.3284, -47) construction
  arc A7 (-91.3284, -47) -> (-89.9142, -46.4142) centre (-91.3284, -45) ccw construction
  line L5 (-89.9142, -46.4142) -> (-88.0858, -44.5858) construction
  arc A8 (-86.6716, -44) -> (-88.0858, -44.5858) centre (-86.6716, -46) ccw construction
  line L6 (-86.6716, -44) -> (86.6716, -44) construction
  arc A9 (88.0858, -44.5858) -> (86.6716, -44) centre (86.6716, -46) ccw construction
  line L7 (88.0858, -44.5858) -> (89.9142, -46.4142) construction
  line L8 (10.9, -31.3) -> (10.9, -38.8) construction
  line L9 (10.9, -38.8) -> (2.7, -38.8) construction
  line L10 (2.7, -38.8) -> (2.7, -31.3) construction
  line L11 (2.7, -31.3) -> (10.9, -31.3) construction
  line L12 (10.9, -11.8) -> (10.9, -19.3) construction
  line L13 (10.9, -19.3) -> (2.7, -19.3) construction
  line L14 (2.7, -19.3) -> (2.7, -11.8) construction
  line L15 (2.7, -11.8) -> (10.9, -11.8) construction
  line L16 (-5.3, -31.3) -> (-5.3, -38.8) construction
  line L17 (-5.3, -38.8) -> (-13.5, -38.8) construction
  line L18 (-13.5, -38.8) -> (-13.5, -31.3) construction
  line L19 (-13.5, -31.3) -> (-5.3, -31.3) construction
  line L20 (-5.3, -11.8) -> (-5.3, -19.3) construction
  line L21 (-5.3, -19.3) -> (-13.5, -19.3) construction
  line L22 (-13.5, -19.3) -> (-13.5, -11.8) construction
  line L23 (-13.5, -11.8) -> (-5.3, -11.8) construction
  line L24 (-13.5, -31.3) -> (-5.3, -31.3) construction
  line L25 (-9.4, -31.3) -> (-9.4, -19.3) construction
  line L26 (-5.3, -19.3) -> (-13.5, -19.3) construction
  line L27 (10.9, -31.3) -> (2.7, -31.3) construction
  line L28 (6.8, -31.3) -> (6.8, -19.3) construction
  point P0 (0, 0)
  point P1 (-9.4, -25.3)
  point P2 (6.8, -25.3)
  point P3 (-109, -24)
  point P4 (-85.5, -6.5)
  point P5 (-69, -6.5)
  point P6 (85.5, -6.5)
  point P7 (69, -6.5)
  point P8 (109, -24)
  dimension "d22" = 23
  dimension "d23" = 8.5
  dimension "d24" = 6.5
  dimension "d25" = 32
  dimension "d26" = 48.5
  dimension "d27" = 8.5
  dimension "d29" = 48.5
  dimension "d30" = 32
hole "Hole1" at (-9.4, 8, 25.3) at (6.8, 8, 25.3) at (-69, 8, 6.5) at (69, 8, 6.5) direction (0, -1, 0) diameter 3.5 end through all
hole "Hole2" at (-109, 8, 24) at (-85.5, 8, 6.5) at (85.5, 8, 6.5) at (109, 8, 24) direction (0, -1, 0) diameter 8.2 end through all
ref_plane "Work Plane1" through (-117.5, 0, 47) normal (0, 0, 1) x (1, 0, 0)
equation "\"d27\" = d23"
equation "\"d29\" = d26"
equation "\"d30\" = d25"
properties part number "A8-0008"
